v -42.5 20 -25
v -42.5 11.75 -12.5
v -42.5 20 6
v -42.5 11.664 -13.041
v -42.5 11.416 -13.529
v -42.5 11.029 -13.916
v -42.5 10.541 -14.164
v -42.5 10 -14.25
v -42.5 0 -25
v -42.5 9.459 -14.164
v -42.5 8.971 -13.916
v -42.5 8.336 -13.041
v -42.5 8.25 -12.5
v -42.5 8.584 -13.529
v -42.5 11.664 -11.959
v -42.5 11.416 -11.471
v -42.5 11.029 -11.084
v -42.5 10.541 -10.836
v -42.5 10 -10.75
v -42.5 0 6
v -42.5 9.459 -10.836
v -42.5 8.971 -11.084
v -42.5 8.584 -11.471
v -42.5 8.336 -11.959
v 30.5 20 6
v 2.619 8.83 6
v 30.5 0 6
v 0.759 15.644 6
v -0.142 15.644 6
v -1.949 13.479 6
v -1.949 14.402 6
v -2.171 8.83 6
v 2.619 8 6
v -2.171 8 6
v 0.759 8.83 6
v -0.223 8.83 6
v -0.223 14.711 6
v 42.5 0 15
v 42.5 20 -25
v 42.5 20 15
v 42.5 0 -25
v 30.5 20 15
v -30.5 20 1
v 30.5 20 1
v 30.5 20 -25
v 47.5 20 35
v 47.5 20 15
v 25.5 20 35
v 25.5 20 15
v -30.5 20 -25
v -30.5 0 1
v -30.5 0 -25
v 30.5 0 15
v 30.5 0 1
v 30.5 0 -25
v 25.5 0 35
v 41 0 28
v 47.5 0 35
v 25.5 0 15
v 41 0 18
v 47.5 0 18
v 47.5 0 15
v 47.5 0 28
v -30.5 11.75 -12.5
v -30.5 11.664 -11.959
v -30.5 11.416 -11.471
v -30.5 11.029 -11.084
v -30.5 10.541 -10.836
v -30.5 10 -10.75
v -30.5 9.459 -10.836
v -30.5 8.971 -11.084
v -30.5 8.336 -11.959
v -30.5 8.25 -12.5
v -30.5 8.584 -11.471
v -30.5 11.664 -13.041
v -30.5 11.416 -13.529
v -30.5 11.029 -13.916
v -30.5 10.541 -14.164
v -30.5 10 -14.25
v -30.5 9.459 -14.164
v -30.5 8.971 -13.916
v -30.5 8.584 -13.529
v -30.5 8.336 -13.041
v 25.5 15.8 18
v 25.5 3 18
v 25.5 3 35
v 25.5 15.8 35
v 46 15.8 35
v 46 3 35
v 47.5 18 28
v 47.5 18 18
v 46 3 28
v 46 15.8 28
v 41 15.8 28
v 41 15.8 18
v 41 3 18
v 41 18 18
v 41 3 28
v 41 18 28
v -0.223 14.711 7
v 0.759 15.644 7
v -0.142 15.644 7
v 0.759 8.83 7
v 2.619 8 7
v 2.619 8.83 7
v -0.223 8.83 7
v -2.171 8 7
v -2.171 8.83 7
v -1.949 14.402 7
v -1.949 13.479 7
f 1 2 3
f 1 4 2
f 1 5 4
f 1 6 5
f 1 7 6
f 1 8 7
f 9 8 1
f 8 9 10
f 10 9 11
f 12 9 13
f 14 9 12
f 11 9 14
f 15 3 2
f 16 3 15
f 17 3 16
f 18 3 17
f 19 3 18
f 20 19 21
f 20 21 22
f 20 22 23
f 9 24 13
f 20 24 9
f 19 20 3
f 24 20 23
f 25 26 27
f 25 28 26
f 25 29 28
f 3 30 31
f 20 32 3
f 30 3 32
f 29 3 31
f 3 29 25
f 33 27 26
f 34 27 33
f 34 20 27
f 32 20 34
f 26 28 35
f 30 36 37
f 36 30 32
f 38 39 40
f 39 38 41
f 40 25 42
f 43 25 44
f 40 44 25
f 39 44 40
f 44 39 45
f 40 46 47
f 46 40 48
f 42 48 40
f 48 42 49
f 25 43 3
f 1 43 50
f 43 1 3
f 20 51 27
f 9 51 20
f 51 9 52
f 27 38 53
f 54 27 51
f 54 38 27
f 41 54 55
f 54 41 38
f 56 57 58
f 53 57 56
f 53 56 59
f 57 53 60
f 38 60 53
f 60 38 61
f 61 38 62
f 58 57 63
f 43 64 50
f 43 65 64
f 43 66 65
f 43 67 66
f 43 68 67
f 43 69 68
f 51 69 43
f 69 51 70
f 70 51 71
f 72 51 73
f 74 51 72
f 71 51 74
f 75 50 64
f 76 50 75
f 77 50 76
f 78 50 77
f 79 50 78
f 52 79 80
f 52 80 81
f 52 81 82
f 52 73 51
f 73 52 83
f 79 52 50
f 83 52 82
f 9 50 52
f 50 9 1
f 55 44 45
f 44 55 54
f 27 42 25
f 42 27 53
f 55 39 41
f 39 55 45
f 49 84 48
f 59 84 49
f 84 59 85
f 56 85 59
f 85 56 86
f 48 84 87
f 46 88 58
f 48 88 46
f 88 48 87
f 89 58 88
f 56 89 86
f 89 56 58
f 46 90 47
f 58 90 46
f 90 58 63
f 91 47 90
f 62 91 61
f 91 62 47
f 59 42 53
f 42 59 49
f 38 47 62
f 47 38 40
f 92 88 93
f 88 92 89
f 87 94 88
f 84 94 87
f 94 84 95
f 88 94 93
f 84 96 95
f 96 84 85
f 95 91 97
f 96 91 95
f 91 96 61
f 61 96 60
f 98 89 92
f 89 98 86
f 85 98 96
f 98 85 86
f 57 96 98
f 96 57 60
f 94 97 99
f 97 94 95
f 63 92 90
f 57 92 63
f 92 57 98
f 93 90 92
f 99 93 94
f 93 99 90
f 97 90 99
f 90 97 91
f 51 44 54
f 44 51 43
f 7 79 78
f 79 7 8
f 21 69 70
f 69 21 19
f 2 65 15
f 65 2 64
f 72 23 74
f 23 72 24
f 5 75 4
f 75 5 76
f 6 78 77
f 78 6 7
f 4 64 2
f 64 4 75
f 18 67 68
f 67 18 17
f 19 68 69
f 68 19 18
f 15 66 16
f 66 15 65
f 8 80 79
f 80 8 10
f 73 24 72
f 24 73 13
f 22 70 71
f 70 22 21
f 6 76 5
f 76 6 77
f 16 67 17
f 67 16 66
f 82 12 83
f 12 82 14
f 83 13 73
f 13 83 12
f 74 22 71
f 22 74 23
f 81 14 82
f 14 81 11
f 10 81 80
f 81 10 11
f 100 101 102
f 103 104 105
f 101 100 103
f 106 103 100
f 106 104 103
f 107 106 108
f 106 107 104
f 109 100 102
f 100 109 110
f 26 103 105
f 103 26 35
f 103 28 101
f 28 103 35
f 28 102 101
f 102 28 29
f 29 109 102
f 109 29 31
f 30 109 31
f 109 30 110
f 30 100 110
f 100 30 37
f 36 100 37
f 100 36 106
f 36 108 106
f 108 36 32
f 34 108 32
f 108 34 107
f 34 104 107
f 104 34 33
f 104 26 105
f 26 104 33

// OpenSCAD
/*
    Barre Unit - Printable Part
    Print 4 copies of this file
*/

// --- Parameters ---
neck_width = 55;   // Width of guitar neck + padding
neck_height = 25;  // Thickness of guitar neck
servo_L = 23.5;    // Tolerance included
servo_W = 12.8;
servo_H = 23;

module ServoMG90S_Cutout() {
    cube([servo_L, servo_W, servo_H+10]);
    // Cable exit
    translate([servo_L-5, -5, 0]) cube([10, 20, 10]);
}

module BarreUnit(label="X") {
    base_w = neck_width + 30; 
    base_thick = 6;
    leg_width = 12;
    
    difference() {
        union() {
            // Main Arch
            translate([-base_w/2, 0, 0]) 
                cube([base_w, 20, base_thick]);
            
            // Left Leg
            translate([-base_w/2, 0, -neck_height]) 
                cube([leg_width, 20, neck_height]);
                
            // Right Leg + Servo Tower base
            translate([base_w/2 - leg_width, 0, -neck_height]) 
                cube([leg_width, 20, neck_height + 30]); // Taller for servo
                
            // Servo Tower Head
            translate([base_w/2 - leg_width - 5, 0, 15])
                cube([leg_width + 10, 20, 20]);
        }
        
        // Subtract Neck (Internal volume)
        translate([-base_w/2 + leg_width, -1, -neck_height-1])
            cube([base_w - 2*leg_width, 22, neck_height+2]);
            
        // Subtract Servo Hole (Side mounted)
        translate([base_w/2 - leg_width - 8, 3, 18])
            rotate([0, 0, 0])
            ServoMG90S_Cutout();
            
        // Mounting Screws for Clamp
        translate([-base_w/2 + leg_width/2, 10, -neck_height/2]) 
            rotate([0,90,0]) cylinder(d=3.5, h=base_w+10, center=true, $fn=20);
    }
    
    // Label
    color("White")
    translate([0, 8, base_thick])
        linear_extrude(1) text(label, size=8, halign="center");
}

// Render for printing
BarreUnit("1");
